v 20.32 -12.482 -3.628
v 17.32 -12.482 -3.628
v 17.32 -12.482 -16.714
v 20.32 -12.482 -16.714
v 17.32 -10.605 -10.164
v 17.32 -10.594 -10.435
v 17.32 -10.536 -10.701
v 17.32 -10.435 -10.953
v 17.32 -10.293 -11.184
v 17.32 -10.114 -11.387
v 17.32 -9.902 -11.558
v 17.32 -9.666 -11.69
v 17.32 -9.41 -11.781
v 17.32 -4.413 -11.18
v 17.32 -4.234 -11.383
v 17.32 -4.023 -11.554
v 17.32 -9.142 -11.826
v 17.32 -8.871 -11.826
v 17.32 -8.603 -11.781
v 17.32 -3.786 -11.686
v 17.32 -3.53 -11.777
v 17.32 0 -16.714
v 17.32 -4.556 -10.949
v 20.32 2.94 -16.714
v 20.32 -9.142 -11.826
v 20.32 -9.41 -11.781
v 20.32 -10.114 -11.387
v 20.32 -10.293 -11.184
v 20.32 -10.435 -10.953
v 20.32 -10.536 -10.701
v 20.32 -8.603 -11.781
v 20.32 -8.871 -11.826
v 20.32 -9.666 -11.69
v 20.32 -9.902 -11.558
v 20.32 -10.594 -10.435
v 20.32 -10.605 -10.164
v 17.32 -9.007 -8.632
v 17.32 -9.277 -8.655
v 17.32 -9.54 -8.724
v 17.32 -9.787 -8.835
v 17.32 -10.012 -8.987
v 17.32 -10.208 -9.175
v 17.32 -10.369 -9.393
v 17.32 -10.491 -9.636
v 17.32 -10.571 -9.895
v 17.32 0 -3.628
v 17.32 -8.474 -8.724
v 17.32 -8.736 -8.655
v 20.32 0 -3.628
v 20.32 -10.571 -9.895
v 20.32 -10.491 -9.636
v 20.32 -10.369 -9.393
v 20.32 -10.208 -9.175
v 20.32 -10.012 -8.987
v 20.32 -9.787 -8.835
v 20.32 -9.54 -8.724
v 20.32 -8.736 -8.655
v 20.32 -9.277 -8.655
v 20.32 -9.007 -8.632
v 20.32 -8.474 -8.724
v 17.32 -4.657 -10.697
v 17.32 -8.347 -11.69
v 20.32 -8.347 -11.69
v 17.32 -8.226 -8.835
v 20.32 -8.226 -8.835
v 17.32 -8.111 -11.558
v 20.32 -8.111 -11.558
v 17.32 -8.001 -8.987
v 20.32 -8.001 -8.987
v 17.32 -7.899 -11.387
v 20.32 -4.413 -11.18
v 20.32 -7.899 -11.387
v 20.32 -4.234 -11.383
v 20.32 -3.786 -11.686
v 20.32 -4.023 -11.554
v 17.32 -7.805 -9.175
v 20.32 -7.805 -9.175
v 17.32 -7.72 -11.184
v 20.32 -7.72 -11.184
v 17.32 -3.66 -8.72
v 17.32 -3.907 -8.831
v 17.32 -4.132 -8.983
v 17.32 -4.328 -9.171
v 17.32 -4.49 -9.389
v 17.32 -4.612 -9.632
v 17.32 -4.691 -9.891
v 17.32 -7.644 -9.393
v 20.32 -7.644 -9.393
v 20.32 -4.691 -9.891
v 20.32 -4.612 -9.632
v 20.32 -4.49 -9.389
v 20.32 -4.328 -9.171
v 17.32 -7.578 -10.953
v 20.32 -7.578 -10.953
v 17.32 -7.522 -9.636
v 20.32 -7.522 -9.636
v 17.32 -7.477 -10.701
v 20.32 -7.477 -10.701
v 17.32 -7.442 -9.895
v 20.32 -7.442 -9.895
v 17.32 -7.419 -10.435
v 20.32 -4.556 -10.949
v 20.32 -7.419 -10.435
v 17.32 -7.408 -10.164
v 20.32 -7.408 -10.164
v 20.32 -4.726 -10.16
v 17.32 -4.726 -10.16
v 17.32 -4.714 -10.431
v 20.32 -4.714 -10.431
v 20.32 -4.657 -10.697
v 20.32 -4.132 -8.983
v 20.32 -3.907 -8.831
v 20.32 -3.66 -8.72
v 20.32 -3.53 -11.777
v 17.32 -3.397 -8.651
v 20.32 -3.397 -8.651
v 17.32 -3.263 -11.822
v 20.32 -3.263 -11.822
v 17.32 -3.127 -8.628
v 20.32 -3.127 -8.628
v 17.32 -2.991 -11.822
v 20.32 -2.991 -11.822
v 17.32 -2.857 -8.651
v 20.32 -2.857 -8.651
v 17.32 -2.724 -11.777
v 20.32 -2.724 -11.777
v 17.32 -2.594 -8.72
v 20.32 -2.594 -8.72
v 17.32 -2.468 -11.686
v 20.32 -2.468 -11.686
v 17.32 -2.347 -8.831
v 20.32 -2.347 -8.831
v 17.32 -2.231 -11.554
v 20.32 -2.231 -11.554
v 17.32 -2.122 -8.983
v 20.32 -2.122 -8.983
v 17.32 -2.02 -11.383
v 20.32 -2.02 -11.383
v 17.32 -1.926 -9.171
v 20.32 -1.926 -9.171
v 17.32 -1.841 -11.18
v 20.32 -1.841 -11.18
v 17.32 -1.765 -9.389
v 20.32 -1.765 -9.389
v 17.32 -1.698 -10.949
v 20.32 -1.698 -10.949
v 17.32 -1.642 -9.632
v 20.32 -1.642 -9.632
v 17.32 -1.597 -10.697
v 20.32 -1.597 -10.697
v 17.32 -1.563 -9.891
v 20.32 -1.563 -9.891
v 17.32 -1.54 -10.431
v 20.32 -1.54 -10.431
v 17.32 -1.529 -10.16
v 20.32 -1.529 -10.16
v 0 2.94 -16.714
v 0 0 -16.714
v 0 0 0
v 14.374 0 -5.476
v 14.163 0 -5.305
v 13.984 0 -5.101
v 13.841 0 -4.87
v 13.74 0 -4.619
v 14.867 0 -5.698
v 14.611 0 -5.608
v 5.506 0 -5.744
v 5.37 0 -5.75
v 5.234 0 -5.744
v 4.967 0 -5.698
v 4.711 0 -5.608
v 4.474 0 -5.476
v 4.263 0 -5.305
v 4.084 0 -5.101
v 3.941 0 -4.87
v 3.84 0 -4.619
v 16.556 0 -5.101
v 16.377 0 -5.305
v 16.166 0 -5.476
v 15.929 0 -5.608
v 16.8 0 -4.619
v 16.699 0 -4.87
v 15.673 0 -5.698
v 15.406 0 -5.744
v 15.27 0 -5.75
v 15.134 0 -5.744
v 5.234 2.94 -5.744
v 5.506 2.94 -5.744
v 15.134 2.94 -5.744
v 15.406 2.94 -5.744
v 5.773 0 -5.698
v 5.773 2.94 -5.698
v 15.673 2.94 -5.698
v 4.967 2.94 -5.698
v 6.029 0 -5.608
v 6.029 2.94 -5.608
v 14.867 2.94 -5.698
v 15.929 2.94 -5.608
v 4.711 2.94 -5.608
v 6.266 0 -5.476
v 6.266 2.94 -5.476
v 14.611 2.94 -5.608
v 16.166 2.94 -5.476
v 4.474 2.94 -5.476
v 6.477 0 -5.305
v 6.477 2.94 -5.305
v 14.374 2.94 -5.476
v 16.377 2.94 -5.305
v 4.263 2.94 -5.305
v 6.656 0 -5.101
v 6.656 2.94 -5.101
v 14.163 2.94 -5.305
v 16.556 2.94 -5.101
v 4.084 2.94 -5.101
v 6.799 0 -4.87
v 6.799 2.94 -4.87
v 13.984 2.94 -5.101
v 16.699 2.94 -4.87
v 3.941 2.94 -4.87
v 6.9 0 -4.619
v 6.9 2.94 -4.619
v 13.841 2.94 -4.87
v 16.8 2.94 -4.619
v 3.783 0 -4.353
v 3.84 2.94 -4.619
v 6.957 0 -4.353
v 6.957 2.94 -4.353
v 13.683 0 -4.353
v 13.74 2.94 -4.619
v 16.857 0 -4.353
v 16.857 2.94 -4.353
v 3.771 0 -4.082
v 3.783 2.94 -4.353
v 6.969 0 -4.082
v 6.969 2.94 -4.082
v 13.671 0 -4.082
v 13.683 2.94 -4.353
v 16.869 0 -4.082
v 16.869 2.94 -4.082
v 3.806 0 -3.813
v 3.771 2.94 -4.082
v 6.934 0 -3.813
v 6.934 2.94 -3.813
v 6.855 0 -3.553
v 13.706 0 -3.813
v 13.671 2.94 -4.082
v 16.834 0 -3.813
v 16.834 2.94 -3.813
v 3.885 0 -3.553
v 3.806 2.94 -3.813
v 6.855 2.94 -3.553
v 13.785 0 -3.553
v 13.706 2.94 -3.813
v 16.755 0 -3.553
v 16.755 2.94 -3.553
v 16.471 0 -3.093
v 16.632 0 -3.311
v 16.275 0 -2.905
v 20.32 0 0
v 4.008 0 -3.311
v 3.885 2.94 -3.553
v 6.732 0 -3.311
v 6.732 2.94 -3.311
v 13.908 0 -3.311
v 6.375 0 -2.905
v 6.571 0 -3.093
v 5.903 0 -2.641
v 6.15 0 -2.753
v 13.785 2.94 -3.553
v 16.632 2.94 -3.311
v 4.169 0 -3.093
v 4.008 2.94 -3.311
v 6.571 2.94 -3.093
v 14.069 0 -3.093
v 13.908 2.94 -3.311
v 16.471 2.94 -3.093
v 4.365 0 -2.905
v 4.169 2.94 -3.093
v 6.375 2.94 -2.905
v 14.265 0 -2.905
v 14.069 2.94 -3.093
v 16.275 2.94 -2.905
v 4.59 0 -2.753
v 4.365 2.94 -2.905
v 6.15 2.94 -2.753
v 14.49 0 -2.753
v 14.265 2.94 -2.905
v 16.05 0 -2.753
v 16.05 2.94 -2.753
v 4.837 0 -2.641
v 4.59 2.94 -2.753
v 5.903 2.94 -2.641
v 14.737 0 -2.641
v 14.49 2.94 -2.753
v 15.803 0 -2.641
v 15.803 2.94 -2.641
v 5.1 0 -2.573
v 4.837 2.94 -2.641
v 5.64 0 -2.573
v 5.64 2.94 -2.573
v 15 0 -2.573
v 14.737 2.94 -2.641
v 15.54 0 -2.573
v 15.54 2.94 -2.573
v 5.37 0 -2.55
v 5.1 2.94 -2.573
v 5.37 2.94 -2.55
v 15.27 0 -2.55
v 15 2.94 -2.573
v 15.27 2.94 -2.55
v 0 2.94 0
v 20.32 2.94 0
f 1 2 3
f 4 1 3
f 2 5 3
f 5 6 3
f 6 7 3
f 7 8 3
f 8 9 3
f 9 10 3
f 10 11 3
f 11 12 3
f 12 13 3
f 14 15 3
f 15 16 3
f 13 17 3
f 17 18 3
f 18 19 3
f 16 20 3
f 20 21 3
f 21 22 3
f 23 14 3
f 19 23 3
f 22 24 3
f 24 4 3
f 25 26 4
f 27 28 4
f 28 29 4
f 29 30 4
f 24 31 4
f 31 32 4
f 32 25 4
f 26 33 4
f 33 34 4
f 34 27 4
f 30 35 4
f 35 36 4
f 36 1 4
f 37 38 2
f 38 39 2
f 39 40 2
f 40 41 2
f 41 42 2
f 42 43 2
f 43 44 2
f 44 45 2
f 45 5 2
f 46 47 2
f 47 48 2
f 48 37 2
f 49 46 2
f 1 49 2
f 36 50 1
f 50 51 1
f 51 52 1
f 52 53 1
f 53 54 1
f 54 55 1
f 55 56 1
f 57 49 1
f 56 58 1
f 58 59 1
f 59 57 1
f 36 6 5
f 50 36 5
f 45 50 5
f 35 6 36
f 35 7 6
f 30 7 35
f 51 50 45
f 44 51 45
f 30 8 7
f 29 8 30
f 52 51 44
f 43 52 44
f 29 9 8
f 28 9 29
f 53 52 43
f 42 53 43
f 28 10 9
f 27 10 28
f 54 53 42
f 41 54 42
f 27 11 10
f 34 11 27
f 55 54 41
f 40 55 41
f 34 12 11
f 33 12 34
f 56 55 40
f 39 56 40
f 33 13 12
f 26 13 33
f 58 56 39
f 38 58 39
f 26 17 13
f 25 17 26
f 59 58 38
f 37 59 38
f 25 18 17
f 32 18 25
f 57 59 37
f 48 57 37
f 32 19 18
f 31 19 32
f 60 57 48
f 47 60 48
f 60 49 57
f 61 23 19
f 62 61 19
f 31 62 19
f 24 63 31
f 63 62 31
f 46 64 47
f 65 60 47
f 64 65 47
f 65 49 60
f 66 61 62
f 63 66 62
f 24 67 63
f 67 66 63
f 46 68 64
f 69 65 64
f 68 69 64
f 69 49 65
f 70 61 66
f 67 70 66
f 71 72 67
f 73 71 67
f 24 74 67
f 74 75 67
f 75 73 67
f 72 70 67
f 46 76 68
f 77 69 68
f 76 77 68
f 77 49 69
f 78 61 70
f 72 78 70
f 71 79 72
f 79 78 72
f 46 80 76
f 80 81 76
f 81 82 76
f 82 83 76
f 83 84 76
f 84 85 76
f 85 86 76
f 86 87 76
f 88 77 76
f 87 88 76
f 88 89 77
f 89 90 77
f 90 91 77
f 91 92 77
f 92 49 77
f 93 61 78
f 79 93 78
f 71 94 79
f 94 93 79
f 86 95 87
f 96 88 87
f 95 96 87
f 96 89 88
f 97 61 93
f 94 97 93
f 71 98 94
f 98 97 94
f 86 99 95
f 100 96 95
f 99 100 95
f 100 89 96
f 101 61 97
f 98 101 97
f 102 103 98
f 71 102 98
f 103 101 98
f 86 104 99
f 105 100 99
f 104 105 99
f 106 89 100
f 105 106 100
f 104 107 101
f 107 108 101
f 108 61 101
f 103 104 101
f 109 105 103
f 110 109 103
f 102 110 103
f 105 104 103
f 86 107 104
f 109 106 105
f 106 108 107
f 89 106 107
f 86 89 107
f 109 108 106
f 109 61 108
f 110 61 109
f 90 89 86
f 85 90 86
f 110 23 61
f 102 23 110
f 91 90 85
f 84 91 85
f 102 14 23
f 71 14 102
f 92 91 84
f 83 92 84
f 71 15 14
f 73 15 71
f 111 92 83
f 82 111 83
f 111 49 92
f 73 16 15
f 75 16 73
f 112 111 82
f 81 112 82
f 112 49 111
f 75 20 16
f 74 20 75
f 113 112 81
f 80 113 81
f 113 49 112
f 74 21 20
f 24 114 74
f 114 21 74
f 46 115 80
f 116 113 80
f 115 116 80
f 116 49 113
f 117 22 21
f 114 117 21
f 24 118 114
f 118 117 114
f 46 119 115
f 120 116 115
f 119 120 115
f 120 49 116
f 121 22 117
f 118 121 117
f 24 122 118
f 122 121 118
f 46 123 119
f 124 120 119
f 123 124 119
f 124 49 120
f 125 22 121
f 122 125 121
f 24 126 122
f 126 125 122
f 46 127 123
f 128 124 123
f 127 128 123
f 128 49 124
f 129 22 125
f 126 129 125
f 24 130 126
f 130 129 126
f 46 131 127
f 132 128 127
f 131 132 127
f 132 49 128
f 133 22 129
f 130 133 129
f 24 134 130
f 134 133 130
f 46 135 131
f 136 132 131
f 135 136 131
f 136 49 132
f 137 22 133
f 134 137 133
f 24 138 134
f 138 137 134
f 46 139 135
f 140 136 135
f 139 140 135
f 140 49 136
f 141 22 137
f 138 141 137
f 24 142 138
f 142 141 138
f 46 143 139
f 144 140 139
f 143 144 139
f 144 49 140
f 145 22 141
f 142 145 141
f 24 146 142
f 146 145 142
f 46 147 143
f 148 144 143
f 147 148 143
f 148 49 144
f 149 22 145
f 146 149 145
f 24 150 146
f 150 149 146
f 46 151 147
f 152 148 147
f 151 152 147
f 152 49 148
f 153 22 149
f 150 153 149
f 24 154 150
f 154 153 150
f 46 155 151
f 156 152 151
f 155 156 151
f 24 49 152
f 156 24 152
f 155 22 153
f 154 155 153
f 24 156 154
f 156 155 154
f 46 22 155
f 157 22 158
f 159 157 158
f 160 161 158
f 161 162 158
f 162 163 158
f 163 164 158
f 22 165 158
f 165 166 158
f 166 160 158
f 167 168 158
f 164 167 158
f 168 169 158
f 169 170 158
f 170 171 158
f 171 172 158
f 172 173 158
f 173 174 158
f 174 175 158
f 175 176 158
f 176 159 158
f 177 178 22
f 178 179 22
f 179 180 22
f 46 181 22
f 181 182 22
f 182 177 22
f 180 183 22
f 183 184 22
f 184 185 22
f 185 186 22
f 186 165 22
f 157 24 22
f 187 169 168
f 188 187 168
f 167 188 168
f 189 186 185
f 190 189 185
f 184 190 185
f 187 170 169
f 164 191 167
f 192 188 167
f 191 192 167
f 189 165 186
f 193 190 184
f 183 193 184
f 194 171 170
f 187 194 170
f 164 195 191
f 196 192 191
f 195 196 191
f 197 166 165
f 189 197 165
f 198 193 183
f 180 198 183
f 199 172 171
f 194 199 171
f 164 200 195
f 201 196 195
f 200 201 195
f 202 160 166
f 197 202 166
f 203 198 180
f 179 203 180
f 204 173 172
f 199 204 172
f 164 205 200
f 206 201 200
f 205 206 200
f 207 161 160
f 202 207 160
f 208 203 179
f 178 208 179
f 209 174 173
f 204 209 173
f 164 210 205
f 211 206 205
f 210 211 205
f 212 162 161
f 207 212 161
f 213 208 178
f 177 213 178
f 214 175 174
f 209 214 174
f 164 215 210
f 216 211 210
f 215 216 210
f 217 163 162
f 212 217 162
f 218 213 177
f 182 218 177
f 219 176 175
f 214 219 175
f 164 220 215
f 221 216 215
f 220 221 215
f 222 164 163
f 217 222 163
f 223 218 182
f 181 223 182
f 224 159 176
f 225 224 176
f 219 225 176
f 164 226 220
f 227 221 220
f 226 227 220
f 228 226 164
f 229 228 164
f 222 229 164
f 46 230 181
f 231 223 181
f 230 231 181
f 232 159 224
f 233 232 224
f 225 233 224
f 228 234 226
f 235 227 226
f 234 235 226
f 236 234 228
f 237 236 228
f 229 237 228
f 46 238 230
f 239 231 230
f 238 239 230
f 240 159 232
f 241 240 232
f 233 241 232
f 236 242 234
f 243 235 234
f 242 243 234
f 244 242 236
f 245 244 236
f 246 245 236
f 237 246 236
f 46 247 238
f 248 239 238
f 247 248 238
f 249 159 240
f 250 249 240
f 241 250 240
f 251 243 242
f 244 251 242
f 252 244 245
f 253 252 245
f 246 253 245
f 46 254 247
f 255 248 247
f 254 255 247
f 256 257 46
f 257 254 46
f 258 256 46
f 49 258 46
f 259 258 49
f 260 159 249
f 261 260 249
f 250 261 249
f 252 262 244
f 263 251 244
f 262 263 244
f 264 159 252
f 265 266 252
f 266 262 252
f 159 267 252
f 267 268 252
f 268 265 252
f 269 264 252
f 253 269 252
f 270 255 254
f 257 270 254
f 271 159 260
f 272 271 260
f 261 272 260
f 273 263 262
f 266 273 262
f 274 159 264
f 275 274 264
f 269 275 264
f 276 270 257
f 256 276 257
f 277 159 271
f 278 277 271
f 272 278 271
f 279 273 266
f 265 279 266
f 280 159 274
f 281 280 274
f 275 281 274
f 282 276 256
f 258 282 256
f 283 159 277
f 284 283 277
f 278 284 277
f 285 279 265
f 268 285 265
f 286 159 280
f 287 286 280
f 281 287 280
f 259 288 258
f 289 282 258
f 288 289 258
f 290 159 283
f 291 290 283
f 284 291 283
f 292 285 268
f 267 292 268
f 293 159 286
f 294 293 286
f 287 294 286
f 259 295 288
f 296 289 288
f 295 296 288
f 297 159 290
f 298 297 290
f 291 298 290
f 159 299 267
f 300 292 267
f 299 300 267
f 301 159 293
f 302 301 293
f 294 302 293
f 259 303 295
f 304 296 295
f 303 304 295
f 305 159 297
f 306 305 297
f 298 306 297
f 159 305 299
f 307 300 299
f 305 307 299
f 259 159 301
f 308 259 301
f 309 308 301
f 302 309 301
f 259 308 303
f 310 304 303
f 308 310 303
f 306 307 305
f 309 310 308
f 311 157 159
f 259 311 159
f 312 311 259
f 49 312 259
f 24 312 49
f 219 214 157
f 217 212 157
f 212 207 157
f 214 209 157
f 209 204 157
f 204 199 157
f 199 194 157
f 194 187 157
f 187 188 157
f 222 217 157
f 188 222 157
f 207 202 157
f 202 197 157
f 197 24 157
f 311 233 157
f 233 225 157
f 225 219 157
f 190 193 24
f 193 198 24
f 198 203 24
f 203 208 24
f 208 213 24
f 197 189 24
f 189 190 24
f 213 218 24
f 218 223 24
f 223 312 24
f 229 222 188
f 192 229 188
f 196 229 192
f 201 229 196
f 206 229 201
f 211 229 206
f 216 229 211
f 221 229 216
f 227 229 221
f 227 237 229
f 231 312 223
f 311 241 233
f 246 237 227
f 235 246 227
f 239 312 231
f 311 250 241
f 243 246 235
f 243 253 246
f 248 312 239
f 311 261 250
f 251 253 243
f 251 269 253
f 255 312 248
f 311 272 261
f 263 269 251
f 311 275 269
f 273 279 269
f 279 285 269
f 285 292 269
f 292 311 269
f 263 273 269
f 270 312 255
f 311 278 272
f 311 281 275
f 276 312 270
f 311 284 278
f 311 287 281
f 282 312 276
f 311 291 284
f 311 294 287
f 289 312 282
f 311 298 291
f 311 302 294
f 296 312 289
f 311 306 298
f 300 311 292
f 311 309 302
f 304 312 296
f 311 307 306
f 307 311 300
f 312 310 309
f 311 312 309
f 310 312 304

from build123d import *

# Parameters (mm, degrees)
SKETCH1_W           = 20.32
SKETCH1_H           = 20.32
BOSS_EXTRUDE1_DEPTH = 3
SKETCH2_W           = 13.085786438
SKETCH2_H           = 15.522266203
BOSS_EXTRUDE2_DEPTH = 3
SKETCH5_W           = 31.587668609
SKETCH5_H           = 25.562972936
CUT_EXTRUDE1_DEPTH  = 0.1
SKETCH6_W           = 20.32
SKETCH6_H           = 3.606
CUT_EXTRUDE2_DEPTH  = 10
SKETCH7_R           = 1.6
CUT_EXTRUDE3_DEPTH  = 10
SKETCH8_R           = 1.6
CUT_EXTRUDE4_DEPTH  = 10


with BuildPart() as part:
    # Sketch1 → Boss-Extrude1 (new body)
    with BuildSketch(Plane(origin=(0, 0, 0), x_dir=(1, 0, 0), z_dir=(0, 1, 0))):
        with Locations((10.16, 10.16)):
            Rectangle(SKETCH1_W, SKETCH1_H)
    extrude(amount=BOSS_EXTRUDE1_DEPTH)

    # Sketch2 → Boss-Extrude2 (add)
    with BuildSketch(Plane(origin=(20.32, 0, 0), x_dir=(0, 0, -1), z_dir=(1, 0, 0))):
        with Locations((10.171106781, -4.720966496)):
            Rectangle(SKETCH2_W, SKETCH2_H)
    extrude(amount=-BOSS_EXTRUDE2_DEPTH)

    # Sketch5 → Cut-Extrude1 (cut)
    with BuildSketch(Plane(origin=(0, 3.040166606, 0), x_dir=(1, 0, 0), z_dir=(0, 1, 0))):
        with Locations((13.28189867, 9.26803237)):
            Rectangle(SKETCH5_W, SKETCH5_H)
    extrude(amount=-CUT_EXTRUDE1_DEPTH, mode=Mode.SUBTRACT)

    # Sketch6 → Cut-Extrude2 (cut)
    with BuildSketch(Plane(origin=(0, 0, 0), x_dir=(-1, 0, 0), z_dir=(0, -1, 0))):
        with Locations((-10.16, 18.517)):
            Rectangle(SKETCH6_W, SKETCH6_H)
    extrude(amount=-CUT_EXTRUDE2_DEPTH, mode=Mode.SUBTRACT)

    # Sketch7 → Cut-Extrude3 (cut)
    with BuildSketch(Plane(origin=(0, 2.940166606, 0), x_dir=(1, 0, 0), z_dir=(0, 1, 0))):
        with Locations(Location((5.37, 4.15, 0), (0, 0, 270))):
            Circle(SKETCH7_R)
        with Locations(Location((15.27, 4.15, 0), (0, 0, 270))):
            Circle(SKETCH7_R)
    extrude(amount=-CUT_EXTRUDE3_DEPTH, mode=Mode.SUBTRACT)

    # Sketch8 → Cut-Extrude4 (cut)
    with BuildSketch(Plane.ZY.offset(-17.32)):
        with Locations((-10.232213562, -9.006524303)):
            Circle(SKETCH8_R)
        with Locations((-10.228213562, -3.127074003)):
            Circle(SKETCH8_R)
    extrude(amount=-CUT_EXTRUDE4_DEPTH, mode=Mode.SUBTRACT)


solid = part.part
